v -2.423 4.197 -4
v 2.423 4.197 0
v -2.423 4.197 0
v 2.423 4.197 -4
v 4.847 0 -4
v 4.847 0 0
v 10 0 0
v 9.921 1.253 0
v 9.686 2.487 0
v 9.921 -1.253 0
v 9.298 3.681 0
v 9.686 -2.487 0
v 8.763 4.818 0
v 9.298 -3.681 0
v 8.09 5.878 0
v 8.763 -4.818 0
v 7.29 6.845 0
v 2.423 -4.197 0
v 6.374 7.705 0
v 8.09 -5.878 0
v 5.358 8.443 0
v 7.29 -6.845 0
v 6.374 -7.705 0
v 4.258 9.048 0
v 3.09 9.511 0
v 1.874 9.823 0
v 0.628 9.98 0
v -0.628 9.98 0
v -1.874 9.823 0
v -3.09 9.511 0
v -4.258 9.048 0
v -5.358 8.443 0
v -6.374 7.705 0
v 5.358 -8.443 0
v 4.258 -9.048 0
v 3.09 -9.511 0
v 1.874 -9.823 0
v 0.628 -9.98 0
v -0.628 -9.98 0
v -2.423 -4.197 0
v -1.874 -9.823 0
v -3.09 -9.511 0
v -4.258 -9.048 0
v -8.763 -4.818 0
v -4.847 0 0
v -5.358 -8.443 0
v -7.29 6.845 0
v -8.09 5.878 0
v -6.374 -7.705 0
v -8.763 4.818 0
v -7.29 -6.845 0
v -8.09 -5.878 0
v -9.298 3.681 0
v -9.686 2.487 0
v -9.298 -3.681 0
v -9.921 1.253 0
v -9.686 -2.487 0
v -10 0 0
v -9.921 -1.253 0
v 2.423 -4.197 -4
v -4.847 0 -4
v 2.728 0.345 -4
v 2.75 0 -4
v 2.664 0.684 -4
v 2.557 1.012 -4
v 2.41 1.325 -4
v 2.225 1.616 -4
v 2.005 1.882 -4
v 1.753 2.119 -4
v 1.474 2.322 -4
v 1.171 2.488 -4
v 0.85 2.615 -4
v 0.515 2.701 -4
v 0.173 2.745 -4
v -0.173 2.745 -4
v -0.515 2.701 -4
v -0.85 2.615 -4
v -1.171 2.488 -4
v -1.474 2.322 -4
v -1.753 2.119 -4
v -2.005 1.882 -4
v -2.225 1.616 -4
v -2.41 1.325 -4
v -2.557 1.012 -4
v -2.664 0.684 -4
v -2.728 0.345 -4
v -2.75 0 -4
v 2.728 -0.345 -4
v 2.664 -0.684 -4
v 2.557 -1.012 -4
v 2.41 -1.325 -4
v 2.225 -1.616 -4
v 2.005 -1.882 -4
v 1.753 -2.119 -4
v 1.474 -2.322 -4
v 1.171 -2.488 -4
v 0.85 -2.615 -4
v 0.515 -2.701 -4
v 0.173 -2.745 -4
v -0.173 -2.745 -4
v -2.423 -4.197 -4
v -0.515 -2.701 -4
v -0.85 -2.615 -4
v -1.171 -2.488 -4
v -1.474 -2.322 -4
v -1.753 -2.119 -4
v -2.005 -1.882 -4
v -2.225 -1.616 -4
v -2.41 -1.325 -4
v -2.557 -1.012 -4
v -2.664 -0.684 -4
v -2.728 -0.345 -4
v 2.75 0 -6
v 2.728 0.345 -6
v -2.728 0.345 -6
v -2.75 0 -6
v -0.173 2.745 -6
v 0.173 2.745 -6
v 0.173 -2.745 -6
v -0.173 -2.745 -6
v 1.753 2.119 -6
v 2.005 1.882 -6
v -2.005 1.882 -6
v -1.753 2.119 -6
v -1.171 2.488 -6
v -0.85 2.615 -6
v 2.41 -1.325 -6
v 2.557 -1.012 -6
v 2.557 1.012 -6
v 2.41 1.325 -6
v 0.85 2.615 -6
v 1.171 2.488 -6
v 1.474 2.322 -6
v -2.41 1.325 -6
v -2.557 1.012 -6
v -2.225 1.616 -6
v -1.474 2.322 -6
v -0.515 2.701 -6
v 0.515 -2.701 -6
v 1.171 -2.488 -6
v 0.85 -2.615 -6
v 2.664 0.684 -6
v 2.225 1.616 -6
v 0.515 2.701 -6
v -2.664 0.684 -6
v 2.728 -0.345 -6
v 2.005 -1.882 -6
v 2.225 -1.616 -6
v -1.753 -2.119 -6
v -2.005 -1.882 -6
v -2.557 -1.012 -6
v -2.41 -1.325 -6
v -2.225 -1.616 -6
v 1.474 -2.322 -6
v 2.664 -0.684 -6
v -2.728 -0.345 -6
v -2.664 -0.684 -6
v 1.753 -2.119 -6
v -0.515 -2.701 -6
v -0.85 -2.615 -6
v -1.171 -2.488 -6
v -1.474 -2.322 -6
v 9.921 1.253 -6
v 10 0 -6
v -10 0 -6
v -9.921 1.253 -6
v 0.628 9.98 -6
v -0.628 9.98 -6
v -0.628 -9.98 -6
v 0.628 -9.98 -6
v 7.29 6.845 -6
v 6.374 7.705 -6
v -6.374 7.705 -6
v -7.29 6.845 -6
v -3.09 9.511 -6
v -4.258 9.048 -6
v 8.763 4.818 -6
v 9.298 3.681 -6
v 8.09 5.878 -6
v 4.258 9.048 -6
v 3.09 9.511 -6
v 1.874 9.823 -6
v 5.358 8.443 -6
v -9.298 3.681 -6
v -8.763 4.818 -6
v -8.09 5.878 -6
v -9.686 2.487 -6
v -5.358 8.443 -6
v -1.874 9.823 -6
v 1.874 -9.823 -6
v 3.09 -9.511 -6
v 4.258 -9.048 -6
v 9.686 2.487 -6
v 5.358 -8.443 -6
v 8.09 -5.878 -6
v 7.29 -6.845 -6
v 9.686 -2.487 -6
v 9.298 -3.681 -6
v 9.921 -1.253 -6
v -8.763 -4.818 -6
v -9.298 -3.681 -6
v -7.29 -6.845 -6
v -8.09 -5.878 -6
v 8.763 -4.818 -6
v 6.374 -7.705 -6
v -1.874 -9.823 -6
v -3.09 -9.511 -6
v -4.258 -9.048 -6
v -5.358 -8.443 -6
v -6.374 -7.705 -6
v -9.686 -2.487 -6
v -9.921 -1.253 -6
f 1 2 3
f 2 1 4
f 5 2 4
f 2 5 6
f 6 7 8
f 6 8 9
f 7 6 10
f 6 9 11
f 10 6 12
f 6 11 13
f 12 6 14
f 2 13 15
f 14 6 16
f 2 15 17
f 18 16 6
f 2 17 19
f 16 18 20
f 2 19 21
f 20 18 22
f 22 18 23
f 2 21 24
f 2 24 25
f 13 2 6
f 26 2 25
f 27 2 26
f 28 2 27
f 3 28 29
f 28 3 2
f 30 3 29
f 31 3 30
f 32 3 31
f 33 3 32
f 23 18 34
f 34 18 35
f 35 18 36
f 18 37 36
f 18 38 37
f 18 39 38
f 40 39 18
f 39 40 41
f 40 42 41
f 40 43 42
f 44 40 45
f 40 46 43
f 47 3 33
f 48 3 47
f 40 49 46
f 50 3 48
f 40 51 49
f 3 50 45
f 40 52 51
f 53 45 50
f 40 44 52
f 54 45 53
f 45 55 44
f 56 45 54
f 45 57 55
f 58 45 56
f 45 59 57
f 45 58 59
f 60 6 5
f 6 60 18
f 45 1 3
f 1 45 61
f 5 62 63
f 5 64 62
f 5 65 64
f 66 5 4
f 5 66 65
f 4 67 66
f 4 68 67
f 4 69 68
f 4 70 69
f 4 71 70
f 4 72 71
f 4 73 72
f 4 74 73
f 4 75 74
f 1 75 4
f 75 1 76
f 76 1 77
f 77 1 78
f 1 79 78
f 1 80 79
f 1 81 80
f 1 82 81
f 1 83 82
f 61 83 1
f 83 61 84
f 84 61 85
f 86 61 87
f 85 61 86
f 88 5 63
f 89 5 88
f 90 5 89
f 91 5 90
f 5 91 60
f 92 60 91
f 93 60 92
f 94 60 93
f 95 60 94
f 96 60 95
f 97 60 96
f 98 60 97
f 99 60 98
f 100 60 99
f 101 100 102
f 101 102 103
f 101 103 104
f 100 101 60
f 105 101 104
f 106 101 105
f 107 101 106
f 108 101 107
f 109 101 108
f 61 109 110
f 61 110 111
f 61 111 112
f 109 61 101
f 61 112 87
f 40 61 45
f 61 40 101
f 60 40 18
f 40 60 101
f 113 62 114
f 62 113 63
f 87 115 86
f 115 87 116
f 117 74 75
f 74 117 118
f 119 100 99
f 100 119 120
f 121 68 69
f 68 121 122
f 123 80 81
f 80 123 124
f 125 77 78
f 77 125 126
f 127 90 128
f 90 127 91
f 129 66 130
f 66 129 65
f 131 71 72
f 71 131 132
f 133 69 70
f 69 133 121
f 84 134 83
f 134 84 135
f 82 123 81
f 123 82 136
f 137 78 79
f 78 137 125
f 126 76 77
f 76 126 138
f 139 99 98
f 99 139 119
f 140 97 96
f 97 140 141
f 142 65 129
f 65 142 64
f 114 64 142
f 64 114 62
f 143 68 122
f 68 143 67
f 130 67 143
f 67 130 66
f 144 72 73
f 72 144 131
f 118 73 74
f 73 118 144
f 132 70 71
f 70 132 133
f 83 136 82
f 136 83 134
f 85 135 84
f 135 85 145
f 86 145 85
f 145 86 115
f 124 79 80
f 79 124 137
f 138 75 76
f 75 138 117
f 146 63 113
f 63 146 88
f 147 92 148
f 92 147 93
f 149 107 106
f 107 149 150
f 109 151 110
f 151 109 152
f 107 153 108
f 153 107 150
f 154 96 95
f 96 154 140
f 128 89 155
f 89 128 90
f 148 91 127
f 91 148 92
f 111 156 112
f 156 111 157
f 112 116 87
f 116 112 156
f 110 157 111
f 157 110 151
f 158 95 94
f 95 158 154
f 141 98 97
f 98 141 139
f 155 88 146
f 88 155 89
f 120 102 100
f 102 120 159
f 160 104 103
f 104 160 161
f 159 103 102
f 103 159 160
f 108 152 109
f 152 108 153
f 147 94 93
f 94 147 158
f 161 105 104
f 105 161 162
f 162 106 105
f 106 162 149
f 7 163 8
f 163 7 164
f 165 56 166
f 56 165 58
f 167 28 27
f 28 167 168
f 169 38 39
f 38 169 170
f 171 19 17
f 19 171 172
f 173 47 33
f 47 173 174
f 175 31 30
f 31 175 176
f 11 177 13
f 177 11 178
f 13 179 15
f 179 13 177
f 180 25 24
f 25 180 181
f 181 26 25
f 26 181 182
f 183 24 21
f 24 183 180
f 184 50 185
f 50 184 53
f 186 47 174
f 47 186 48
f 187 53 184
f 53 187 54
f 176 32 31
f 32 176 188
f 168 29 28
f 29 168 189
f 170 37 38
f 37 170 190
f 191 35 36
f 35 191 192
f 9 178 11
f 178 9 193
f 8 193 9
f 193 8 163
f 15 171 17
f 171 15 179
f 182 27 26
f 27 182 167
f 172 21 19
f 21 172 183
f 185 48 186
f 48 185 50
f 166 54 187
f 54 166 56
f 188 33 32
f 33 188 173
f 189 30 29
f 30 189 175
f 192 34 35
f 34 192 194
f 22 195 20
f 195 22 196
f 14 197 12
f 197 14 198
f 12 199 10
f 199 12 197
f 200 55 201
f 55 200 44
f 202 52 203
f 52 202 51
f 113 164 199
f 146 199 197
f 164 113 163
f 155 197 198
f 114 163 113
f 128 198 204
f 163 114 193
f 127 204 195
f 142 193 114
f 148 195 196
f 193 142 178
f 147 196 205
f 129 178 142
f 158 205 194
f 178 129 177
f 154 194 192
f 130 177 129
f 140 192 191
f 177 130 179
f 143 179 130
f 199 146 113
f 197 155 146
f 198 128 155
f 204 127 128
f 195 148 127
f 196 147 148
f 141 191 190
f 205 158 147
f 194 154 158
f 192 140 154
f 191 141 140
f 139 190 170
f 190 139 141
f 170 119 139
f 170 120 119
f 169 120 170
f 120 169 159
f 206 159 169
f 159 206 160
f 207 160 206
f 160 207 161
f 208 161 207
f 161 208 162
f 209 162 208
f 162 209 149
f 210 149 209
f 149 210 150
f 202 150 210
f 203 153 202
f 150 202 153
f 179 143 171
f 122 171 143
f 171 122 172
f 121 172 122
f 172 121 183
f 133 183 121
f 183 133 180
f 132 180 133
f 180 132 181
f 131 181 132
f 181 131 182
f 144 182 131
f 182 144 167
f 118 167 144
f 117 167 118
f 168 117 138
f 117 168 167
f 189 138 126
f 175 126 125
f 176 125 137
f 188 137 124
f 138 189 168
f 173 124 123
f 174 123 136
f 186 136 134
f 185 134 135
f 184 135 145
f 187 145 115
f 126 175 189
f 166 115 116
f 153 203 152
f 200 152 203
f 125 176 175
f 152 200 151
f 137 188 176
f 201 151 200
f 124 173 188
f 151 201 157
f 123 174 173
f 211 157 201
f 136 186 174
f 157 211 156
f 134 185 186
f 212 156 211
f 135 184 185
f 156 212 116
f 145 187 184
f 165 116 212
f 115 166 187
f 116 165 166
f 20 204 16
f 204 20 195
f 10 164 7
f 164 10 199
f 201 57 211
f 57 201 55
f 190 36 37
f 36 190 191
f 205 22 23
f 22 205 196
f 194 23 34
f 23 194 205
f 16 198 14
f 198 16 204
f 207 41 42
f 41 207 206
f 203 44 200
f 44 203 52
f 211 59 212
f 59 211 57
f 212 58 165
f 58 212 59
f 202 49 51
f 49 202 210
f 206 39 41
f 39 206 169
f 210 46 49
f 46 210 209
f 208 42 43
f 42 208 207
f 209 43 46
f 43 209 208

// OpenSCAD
$fn = 50;


difference() {
	union() {
		translate(v = [0, 0, -6.0000000000]) {
			cylinder(h = 6.0000000000, r = 10.0000000000);
		}
	}
	union() {
		translate(v = [0, 0, 0]) {
			rotate(a = [0, 0, 0]) {
				difference() {
					union() {
						translate(v = [0, 0, -4]) {
							linear_extrude(height = 4) {
								polygon(points = [[4.8468000000, 0.0000000000], [2.4234000000, 4.1974519271], [-2.4234000000, 4.1974519271], [-4.8468000000, 0.0000000000], [-2.4234000000, -4.1974519271], [2.4234000000, -4.1974519271]]);
							}
						}
					}
					union();
				}
			}
		}
		#translate(v = [0, 0, -100.0000000000]) {
			cylinder(h = 200, r = 2.7500000000);
		}
	}
}
